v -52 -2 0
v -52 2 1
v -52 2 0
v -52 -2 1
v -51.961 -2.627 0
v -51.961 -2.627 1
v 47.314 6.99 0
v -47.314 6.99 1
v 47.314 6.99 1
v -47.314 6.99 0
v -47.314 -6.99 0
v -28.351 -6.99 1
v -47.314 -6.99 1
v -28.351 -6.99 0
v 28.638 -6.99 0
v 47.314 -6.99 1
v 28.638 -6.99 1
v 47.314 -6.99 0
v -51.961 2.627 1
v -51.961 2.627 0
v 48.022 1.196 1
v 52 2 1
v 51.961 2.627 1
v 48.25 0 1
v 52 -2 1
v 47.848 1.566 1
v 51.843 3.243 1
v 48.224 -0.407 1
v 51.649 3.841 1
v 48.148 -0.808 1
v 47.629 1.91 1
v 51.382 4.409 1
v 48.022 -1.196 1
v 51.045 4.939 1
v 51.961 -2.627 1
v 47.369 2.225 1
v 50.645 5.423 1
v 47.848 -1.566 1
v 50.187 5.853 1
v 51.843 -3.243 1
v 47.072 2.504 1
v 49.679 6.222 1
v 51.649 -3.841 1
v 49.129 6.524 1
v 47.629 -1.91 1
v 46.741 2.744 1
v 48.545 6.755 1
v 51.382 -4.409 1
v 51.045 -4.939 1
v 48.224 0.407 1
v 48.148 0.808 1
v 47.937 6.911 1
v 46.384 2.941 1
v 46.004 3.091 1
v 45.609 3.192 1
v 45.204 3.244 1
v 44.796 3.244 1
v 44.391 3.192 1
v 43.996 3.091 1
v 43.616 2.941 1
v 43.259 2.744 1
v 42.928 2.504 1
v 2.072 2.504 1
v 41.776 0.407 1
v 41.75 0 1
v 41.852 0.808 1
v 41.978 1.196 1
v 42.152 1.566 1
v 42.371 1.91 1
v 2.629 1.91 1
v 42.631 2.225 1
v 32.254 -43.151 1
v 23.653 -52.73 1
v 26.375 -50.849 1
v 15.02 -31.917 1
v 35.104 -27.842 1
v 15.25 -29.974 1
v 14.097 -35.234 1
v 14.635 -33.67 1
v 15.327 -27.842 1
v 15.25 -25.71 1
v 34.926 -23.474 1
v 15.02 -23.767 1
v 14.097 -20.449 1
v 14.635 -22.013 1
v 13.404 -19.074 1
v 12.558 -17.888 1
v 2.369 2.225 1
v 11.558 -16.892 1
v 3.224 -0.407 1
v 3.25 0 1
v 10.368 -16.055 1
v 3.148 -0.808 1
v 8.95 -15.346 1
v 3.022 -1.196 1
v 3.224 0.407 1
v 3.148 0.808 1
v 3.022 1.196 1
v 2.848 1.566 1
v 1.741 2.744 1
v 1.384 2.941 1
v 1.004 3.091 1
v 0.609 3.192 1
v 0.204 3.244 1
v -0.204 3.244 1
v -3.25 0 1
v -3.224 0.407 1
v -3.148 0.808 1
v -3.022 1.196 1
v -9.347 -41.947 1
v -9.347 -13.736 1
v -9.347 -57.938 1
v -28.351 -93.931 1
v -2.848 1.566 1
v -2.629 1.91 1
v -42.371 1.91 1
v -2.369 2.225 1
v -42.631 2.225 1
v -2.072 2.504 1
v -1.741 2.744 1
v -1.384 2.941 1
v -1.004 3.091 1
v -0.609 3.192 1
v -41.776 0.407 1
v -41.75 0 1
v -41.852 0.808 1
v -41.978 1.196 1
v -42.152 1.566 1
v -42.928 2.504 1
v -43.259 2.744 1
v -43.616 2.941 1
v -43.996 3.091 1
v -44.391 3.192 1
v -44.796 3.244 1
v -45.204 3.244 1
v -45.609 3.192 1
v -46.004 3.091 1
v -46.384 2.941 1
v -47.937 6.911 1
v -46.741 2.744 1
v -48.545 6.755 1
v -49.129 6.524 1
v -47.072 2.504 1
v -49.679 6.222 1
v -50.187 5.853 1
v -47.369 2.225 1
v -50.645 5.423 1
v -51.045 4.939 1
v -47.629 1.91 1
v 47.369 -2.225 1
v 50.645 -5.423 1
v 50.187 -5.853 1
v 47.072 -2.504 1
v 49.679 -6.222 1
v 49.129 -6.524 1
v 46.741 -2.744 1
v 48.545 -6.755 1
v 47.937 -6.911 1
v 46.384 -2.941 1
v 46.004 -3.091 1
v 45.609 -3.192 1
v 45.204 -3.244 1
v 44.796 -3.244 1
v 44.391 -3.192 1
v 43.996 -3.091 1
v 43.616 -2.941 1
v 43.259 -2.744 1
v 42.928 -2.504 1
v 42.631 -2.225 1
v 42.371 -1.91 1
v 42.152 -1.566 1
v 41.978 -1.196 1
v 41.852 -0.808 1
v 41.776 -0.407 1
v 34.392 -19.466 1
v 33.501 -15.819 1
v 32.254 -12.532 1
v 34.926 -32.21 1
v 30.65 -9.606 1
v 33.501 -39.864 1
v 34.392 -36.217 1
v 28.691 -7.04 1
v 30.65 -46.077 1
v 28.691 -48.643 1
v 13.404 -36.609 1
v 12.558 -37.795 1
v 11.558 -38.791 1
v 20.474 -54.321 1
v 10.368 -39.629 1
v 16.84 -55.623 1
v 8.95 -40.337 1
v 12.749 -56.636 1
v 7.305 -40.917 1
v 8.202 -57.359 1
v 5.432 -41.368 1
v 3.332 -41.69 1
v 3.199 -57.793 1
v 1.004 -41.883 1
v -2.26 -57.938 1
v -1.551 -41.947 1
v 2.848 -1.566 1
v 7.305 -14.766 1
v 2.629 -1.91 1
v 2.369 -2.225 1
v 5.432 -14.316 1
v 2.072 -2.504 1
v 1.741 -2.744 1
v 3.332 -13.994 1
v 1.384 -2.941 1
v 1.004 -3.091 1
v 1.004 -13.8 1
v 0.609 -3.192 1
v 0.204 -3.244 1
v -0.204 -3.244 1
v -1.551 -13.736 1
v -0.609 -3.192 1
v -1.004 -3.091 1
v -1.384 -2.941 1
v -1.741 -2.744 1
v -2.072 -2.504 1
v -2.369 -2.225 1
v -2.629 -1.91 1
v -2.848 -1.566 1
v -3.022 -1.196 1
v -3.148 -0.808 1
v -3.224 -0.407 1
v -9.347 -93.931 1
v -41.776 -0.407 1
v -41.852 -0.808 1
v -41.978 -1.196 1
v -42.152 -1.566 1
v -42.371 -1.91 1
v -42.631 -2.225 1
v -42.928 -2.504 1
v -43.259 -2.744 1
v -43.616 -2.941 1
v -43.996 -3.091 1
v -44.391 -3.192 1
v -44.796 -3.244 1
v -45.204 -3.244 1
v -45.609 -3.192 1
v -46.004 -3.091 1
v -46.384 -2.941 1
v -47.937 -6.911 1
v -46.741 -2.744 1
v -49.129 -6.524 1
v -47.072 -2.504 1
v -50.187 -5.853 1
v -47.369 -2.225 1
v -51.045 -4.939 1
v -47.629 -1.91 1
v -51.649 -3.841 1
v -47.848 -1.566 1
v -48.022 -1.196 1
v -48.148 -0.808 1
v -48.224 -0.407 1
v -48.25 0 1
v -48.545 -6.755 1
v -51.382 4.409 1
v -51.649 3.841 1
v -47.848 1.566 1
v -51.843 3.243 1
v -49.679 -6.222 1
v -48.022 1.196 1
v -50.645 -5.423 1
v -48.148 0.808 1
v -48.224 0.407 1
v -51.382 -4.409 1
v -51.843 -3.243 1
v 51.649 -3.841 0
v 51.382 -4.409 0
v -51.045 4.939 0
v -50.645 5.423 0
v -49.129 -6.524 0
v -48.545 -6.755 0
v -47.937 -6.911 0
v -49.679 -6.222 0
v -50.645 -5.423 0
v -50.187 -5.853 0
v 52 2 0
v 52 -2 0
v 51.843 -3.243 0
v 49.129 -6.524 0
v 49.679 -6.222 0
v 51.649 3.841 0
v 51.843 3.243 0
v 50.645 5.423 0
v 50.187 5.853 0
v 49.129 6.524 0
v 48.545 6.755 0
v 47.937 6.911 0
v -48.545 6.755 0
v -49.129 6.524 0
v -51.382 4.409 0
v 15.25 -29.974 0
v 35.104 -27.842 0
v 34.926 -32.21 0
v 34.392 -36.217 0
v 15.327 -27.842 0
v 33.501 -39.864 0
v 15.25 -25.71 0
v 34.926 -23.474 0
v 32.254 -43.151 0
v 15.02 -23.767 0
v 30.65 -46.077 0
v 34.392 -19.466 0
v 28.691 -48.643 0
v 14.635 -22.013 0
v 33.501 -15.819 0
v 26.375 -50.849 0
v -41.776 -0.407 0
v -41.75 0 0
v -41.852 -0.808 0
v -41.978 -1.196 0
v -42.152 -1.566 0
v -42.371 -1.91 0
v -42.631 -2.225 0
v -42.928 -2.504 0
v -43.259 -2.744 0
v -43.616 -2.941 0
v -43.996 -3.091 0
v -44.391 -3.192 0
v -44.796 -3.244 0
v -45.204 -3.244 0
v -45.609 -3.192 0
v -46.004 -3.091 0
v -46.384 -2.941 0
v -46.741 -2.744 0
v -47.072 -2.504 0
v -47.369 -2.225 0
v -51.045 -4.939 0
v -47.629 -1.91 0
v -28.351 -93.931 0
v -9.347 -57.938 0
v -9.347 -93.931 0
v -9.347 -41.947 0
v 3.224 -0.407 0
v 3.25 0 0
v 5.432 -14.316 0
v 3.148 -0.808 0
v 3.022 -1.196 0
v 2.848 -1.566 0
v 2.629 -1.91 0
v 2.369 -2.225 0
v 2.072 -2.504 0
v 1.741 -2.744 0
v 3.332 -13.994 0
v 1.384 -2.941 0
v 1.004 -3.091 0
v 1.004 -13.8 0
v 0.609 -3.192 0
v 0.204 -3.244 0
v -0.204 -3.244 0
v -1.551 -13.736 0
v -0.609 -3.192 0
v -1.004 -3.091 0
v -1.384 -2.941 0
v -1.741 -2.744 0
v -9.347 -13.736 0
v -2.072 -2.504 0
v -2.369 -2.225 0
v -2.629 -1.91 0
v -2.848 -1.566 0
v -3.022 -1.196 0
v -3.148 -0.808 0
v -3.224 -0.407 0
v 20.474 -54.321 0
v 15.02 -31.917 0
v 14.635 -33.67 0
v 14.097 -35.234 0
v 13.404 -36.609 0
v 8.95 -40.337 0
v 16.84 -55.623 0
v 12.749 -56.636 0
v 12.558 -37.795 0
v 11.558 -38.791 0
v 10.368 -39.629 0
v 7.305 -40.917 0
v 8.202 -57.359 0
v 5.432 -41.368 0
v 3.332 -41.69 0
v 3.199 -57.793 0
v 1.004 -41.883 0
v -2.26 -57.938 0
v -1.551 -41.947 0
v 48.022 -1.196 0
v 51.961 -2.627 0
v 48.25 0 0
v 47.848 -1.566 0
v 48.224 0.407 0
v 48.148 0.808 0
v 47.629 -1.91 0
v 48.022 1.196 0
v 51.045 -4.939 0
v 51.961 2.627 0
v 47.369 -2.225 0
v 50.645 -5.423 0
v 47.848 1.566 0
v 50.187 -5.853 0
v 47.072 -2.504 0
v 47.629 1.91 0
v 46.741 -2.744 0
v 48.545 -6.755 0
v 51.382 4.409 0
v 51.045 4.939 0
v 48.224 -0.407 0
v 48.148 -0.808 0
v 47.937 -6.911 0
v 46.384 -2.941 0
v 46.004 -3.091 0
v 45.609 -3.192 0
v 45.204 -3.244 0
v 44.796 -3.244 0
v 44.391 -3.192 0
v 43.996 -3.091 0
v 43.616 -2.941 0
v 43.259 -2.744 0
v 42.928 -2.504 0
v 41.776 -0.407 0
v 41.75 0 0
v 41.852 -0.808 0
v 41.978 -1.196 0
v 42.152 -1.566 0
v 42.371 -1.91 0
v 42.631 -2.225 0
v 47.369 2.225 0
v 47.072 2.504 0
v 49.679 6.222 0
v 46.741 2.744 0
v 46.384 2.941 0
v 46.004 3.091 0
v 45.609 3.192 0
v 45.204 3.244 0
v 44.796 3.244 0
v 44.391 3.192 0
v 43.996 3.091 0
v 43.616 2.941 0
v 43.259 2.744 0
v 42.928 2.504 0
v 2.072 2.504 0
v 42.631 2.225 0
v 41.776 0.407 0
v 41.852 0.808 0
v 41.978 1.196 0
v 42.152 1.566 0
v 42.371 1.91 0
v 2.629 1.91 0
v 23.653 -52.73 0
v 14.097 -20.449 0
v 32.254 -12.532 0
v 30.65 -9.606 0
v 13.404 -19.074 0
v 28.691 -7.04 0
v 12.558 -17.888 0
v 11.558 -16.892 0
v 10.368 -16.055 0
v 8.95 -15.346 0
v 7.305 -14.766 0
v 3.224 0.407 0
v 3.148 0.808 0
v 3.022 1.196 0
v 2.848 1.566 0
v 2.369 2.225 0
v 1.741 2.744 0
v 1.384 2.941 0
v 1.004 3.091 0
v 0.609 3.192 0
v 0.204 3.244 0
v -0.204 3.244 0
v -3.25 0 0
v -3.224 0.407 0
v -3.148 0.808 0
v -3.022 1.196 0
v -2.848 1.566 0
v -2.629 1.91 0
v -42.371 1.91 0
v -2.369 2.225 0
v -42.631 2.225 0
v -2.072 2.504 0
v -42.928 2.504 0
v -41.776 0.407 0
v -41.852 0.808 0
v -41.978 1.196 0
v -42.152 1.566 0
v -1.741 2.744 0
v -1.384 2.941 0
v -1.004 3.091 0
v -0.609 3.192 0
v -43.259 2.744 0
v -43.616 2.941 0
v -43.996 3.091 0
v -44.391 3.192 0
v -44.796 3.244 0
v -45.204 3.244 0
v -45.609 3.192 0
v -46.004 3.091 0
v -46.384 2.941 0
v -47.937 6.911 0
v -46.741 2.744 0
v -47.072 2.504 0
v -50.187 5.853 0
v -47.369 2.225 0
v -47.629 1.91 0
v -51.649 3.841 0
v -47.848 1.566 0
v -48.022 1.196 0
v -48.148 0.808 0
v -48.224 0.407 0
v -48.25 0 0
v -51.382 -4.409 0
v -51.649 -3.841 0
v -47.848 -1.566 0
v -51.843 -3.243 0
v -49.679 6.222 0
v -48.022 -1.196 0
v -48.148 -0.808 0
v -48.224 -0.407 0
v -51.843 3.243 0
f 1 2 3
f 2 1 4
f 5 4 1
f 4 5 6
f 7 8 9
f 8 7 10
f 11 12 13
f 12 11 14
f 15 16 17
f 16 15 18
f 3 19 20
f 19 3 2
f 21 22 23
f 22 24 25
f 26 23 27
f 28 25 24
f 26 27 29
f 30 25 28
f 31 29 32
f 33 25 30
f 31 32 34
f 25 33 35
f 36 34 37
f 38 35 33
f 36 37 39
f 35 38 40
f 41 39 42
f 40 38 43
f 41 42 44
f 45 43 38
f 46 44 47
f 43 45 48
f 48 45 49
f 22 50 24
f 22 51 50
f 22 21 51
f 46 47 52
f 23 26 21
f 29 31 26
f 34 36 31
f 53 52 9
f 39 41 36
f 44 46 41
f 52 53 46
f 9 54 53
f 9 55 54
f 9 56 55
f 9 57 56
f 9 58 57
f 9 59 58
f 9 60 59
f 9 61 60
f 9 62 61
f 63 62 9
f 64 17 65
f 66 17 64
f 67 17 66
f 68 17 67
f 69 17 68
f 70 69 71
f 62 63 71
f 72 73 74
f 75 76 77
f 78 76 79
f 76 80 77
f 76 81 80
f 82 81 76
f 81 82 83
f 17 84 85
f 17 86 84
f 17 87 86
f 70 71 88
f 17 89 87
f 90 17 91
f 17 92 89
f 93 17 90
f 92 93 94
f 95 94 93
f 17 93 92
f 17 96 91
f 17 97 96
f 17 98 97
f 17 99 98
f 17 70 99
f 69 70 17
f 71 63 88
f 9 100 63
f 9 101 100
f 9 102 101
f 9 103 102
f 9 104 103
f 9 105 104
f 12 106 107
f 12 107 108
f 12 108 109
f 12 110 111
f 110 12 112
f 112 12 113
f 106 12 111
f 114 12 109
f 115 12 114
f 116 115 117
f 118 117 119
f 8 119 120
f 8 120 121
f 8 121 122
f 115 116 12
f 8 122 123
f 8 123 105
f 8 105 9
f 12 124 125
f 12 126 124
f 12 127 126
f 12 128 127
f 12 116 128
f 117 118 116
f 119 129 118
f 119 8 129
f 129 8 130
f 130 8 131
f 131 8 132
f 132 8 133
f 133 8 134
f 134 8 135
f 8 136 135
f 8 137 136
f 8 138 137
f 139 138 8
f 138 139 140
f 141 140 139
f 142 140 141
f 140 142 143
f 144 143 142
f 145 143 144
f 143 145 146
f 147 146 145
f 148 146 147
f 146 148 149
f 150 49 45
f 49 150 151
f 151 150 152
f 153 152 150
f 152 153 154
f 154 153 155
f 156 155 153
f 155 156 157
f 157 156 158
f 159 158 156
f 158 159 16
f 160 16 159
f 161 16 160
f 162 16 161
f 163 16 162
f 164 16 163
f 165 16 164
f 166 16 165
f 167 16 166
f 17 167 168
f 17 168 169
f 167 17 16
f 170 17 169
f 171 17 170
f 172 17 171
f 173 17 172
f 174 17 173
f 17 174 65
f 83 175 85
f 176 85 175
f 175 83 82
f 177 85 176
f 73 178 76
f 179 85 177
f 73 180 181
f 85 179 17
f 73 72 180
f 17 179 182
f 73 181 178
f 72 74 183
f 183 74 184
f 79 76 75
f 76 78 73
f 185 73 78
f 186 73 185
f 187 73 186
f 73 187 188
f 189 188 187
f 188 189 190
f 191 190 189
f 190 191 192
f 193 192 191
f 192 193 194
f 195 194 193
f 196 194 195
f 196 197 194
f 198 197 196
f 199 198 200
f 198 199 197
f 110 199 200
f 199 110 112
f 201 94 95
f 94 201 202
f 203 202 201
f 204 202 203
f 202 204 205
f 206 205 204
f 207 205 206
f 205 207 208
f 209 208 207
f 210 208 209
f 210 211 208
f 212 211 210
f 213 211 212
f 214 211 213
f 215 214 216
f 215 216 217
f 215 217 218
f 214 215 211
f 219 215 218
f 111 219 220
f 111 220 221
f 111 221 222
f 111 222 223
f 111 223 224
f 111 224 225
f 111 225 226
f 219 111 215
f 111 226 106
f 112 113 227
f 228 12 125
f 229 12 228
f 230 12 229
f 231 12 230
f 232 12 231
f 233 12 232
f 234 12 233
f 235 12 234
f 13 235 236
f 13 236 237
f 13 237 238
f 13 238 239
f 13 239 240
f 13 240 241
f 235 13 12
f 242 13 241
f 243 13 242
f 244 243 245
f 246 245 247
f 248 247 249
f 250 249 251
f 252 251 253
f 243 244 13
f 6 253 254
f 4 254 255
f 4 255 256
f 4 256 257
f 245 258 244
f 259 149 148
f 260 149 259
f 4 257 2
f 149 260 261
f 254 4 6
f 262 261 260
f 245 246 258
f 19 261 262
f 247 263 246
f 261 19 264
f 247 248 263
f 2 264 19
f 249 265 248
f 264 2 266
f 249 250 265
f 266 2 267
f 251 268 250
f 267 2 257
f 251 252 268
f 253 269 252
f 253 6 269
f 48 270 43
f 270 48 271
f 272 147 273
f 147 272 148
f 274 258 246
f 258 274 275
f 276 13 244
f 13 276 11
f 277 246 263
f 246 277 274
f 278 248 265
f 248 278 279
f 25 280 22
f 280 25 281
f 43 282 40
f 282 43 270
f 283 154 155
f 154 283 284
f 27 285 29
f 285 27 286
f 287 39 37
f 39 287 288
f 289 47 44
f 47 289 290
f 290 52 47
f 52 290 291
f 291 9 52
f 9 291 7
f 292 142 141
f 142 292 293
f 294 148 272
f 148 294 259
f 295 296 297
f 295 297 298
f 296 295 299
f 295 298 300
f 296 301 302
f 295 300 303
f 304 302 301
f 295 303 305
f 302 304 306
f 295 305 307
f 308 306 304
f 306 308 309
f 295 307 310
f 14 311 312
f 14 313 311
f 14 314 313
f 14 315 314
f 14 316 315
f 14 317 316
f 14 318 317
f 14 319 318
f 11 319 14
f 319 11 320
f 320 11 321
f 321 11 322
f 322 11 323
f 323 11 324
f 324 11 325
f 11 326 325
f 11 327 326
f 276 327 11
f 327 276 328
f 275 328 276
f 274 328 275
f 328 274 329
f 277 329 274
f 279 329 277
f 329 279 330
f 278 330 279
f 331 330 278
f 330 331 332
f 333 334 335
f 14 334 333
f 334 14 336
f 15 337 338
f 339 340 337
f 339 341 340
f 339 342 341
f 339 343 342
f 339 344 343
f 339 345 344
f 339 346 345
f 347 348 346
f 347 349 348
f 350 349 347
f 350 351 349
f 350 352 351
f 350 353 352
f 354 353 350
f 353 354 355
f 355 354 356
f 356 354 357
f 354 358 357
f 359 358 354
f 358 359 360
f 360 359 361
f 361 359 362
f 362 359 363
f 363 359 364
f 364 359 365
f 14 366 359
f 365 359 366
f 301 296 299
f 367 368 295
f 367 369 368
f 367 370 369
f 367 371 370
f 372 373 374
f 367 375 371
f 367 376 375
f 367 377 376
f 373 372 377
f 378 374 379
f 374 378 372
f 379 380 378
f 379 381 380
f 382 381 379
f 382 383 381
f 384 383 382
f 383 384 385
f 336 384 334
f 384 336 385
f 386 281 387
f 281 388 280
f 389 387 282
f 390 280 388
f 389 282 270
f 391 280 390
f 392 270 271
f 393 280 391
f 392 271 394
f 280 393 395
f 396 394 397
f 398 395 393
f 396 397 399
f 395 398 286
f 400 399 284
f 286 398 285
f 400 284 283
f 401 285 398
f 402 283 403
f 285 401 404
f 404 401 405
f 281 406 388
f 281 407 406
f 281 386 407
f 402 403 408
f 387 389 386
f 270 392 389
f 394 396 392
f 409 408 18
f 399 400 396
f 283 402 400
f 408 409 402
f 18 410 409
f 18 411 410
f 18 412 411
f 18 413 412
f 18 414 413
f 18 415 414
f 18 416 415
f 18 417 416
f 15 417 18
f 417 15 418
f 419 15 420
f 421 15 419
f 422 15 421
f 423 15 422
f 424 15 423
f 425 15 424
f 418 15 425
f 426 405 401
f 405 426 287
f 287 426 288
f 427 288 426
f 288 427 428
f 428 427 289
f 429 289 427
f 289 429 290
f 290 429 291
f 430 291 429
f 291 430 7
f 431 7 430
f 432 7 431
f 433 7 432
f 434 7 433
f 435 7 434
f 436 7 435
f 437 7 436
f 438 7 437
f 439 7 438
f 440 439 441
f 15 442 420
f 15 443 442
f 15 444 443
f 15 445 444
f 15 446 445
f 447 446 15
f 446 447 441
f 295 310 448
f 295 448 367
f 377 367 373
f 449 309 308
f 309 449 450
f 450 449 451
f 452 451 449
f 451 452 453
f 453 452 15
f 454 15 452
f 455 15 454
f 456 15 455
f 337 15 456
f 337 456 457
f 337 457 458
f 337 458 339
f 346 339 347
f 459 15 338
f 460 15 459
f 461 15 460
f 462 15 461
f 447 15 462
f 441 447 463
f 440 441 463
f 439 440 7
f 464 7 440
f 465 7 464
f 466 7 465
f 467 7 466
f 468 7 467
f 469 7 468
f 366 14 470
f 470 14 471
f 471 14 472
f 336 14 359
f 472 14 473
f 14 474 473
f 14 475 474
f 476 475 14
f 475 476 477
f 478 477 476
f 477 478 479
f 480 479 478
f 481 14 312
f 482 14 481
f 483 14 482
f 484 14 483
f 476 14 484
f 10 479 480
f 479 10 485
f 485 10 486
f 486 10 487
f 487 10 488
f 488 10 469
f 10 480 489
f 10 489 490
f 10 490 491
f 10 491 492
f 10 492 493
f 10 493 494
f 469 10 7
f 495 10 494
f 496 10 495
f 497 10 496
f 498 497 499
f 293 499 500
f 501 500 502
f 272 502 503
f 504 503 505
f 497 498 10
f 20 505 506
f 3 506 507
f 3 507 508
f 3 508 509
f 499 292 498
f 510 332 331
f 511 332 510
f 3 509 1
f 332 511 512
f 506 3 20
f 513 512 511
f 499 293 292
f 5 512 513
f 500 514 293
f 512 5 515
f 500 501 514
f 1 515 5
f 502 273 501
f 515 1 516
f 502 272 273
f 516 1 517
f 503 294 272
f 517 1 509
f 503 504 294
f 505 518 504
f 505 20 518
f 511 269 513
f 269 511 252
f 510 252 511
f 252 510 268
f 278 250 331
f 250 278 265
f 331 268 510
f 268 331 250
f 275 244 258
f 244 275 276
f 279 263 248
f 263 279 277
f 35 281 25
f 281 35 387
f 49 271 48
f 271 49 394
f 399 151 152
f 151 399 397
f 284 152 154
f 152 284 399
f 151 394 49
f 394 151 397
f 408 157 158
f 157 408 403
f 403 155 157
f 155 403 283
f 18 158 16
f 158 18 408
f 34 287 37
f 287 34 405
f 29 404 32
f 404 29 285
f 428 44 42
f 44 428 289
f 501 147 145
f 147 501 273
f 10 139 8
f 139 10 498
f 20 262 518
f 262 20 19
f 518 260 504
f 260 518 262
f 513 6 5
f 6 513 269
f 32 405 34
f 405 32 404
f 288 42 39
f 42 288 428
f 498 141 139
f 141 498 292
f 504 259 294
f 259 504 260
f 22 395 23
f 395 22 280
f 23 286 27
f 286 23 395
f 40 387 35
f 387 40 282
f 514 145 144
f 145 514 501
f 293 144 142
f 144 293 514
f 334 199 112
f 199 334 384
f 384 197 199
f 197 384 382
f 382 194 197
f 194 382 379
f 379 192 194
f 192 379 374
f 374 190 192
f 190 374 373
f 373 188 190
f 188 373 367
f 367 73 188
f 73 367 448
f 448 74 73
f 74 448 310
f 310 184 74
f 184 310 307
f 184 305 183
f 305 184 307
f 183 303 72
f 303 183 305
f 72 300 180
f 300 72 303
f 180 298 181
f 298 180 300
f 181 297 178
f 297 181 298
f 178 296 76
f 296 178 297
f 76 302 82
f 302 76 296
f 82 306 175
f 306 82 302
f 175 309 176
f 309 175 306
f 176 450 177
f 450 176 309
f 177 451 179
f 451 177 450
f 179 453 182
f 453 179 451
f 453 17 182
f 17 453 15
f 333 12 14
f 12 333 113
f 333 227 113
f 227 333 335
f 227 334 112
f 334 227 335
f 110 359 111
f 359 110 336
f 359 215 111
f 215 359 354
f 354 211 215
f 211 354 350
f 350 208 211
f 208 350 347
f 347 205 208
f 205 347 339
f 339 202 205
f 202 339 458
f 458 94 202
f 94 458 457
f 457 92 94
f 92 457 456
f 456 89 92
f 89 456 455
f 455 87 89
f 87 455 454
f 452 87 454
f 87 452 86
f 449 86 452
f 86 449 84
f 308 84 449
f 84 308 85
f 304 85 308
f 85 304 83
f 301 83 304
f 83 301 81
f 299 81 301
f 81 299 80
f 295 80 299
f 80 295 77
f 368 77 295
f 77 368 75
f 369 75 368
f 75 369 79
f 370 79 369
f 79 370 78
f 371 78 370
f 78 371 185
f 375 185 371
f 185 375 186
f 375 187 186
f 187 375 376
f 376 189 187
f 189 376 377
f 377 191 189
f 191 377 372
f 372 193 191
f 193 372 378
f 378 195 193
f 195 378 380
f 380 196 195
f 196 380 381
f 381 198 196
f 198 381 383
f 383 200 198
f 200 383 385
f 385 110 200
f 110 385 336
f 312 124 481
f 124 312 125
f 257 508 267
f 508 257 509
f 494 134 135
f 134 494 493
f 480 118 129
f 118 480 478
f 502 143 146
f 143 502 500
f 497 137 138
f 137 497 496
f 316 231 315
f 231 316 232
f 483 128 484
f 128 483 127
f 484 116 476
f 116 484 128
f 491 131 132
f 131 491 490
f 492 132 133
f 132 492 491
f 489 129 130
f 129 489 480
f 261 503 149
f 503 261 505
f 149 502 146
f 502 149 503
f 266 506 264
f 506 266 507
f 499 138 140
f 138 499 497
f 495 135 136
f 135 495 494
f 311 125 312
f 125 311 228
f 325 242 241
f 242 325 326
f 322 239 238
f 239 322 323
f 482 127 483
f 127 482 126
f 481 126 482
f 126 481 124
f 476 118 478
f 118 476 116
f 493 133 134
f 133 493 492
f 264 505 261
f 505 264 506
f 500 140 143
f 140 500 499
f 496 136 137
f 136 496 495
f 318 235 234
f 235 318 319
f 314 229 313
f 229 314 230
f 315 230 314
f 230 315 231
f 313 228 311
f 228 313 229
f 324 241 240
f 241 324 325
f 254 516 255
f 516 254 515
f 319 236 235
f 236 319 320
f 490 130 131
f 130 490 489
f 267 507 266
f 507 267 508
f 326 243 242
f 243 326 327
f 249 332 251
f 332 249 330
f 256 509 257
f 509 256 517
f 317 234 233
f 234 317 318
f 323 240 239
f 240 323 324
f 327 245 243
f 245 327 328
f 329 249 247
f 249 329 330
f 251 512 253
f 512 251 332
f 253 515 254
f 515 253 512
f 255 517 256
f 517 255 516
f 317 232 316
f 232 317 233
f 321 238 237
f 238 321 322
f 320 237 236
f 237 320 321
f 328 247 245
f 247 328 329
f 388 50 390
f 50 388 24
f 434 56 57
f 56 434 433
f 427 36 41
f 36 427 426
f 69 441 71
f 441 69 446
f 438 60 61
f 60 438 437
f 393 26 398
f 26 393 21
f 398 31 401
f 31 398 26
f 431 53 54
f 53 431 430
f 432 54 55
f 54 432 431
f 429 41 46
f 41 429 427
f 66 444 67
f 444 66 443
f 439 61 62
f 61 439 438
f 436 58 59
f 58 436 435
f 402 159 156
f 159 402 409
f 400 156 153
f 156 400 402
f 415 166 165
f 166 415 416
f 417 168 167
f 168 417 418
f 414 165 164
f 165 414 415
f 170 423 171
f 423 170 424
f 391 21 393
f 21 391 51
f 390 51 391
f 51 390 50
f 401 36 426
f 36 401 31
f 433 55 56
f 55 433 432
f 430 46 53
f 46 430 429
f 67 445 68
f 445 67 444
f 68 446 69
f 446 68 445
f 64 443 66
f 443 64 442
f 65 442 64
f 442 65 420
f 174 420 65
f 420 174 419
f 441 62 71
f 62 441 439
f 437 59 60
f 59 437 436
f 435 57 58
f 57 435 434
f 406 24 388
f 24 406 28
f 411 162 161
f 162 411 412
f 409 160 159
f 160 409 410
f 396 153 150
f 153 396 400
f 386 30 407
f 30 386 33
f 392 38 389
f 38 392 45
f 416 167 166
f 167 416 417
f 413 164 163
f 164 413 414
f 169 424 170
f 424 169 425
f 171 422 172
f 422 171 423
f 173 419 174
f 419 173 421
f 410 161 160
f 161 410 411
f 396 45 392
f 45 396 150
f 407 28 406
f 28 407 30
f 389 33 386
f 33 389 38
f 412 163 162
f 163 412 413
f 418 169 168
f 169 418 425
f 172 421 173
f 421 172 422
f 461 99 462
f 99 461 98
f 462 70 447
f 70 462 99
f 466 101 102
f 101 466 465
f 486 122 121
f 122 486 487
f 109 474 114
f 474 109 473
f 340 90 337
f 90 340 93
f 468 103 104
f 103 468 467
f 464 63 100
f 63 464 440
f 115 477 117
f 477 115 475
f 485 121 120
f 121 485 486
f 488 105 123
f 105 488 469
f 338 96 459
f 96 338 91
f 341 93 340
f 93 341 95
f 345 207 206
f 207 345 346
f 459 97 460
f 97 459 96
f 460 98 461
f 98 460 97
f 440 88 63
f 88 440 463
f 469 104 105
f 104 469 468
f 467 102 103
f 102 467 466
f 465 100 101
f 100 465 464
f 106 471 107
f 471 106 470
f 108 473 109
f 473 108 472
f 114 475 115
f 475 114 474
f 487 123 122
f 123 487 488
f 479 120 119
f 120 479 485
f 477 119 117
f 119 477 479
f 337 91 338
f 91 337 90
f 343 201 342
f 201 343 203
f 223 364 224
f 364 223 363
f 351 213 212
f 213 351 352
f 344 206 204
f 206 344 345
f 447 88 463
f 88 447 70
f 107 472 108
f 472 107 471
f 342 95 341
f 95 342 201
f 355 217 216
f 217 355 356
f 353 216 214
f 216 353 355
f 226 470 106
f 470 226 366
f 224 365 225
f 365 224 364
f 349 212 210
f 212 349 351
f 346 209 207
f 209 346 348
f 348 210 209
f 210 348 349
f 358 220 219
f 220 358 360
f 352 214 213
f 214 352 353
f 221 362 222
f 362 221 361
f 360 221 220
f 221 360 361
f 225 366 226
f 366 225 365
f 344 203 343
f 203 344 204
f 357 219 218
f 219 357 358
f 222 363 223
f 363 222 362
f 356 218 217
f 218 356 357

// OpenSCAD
$fn = 50;


difference() {
	union() {
		translate(v = [0, 0, 0]) {
			rotate(a = [0, 0, 0]) {
				hull() {
					translate(v = [-47.0000000000, 2.0000000000, 0]) {
						rotate(a = [0, 0, 0]) {
							translate(v = [0, 0, 0]) {
								rotate(a = [0, 0, 0]) {
									cylinder(h = 1, r = 5);
								}
							}
						}
					}
					translate(v = [47.0000000000, 2.0000000000, 0]) {
						rotate(a = [0, 0, 0]) {
							translate(v = [0, 0, 0]) {
								rotate(a = [0, 0, 0]) {
									cylinder(h = 1, r = 5);
								}
							}
						}
					}
					translate(v = [-47.0000000000, -2.0000000000, 0]) {
						rotate(a = [0, 0, 0]) {
							translate(v = [0, 0, 0]) {
								rotate(a = [0, 0, 0]) {
									cylinder(h = 1, r = 5);
								}
							}
						}
					}
					translate(v = [47.0000000000, -2.0000000000, 0]) {
						rotate(a = [0, 0, 0]) {
							translate(v = [0, 0, 0]) {
								rotate(a = [0, 0, 0]) {
									cylinder(h = 1, r = 5);
								}
							}
						}
					}
				}
			}
		}
		translate(v = [0, 0, 0]) {
			rotate(a = [0, 0, 0]) {
				linear_extrude(height = 1) {
					text(font = "DejaVu Sans Mono:style=Bold", halign = "center", size = 95, text = "P", valign = "top");
				}
			}
		}
	}
	union() {
		translate(v = [-45.0000000000, 0.0000000000, -125.0000000000]) {
			rotate(a = [0, 0, 0]) {
				cylinder(h = 250, r = 3.2500000000);
			}
		}
		translate(v = [45.0000000000, 0.0000000000, -125.0000000000]) {
			rotate(a = [0, 0, 0]) {
				cylinder(h = 250, r = 3.2500000000);
			}
		}
		translate(v = [45.0000000000, 0.0000000000, -125.0000000000]) {
			rotate(a = [0, 0, 0]) {
				cylinder(h = 250, r = 3.2500000000);
			}
		}
		translate(v = [0, 0, -125.0000000000]) {
			rotate(a = [0, 0, 0]) {
				cylinder(h = 250, r = 3.2500000000);
			}
		}
	}
}
